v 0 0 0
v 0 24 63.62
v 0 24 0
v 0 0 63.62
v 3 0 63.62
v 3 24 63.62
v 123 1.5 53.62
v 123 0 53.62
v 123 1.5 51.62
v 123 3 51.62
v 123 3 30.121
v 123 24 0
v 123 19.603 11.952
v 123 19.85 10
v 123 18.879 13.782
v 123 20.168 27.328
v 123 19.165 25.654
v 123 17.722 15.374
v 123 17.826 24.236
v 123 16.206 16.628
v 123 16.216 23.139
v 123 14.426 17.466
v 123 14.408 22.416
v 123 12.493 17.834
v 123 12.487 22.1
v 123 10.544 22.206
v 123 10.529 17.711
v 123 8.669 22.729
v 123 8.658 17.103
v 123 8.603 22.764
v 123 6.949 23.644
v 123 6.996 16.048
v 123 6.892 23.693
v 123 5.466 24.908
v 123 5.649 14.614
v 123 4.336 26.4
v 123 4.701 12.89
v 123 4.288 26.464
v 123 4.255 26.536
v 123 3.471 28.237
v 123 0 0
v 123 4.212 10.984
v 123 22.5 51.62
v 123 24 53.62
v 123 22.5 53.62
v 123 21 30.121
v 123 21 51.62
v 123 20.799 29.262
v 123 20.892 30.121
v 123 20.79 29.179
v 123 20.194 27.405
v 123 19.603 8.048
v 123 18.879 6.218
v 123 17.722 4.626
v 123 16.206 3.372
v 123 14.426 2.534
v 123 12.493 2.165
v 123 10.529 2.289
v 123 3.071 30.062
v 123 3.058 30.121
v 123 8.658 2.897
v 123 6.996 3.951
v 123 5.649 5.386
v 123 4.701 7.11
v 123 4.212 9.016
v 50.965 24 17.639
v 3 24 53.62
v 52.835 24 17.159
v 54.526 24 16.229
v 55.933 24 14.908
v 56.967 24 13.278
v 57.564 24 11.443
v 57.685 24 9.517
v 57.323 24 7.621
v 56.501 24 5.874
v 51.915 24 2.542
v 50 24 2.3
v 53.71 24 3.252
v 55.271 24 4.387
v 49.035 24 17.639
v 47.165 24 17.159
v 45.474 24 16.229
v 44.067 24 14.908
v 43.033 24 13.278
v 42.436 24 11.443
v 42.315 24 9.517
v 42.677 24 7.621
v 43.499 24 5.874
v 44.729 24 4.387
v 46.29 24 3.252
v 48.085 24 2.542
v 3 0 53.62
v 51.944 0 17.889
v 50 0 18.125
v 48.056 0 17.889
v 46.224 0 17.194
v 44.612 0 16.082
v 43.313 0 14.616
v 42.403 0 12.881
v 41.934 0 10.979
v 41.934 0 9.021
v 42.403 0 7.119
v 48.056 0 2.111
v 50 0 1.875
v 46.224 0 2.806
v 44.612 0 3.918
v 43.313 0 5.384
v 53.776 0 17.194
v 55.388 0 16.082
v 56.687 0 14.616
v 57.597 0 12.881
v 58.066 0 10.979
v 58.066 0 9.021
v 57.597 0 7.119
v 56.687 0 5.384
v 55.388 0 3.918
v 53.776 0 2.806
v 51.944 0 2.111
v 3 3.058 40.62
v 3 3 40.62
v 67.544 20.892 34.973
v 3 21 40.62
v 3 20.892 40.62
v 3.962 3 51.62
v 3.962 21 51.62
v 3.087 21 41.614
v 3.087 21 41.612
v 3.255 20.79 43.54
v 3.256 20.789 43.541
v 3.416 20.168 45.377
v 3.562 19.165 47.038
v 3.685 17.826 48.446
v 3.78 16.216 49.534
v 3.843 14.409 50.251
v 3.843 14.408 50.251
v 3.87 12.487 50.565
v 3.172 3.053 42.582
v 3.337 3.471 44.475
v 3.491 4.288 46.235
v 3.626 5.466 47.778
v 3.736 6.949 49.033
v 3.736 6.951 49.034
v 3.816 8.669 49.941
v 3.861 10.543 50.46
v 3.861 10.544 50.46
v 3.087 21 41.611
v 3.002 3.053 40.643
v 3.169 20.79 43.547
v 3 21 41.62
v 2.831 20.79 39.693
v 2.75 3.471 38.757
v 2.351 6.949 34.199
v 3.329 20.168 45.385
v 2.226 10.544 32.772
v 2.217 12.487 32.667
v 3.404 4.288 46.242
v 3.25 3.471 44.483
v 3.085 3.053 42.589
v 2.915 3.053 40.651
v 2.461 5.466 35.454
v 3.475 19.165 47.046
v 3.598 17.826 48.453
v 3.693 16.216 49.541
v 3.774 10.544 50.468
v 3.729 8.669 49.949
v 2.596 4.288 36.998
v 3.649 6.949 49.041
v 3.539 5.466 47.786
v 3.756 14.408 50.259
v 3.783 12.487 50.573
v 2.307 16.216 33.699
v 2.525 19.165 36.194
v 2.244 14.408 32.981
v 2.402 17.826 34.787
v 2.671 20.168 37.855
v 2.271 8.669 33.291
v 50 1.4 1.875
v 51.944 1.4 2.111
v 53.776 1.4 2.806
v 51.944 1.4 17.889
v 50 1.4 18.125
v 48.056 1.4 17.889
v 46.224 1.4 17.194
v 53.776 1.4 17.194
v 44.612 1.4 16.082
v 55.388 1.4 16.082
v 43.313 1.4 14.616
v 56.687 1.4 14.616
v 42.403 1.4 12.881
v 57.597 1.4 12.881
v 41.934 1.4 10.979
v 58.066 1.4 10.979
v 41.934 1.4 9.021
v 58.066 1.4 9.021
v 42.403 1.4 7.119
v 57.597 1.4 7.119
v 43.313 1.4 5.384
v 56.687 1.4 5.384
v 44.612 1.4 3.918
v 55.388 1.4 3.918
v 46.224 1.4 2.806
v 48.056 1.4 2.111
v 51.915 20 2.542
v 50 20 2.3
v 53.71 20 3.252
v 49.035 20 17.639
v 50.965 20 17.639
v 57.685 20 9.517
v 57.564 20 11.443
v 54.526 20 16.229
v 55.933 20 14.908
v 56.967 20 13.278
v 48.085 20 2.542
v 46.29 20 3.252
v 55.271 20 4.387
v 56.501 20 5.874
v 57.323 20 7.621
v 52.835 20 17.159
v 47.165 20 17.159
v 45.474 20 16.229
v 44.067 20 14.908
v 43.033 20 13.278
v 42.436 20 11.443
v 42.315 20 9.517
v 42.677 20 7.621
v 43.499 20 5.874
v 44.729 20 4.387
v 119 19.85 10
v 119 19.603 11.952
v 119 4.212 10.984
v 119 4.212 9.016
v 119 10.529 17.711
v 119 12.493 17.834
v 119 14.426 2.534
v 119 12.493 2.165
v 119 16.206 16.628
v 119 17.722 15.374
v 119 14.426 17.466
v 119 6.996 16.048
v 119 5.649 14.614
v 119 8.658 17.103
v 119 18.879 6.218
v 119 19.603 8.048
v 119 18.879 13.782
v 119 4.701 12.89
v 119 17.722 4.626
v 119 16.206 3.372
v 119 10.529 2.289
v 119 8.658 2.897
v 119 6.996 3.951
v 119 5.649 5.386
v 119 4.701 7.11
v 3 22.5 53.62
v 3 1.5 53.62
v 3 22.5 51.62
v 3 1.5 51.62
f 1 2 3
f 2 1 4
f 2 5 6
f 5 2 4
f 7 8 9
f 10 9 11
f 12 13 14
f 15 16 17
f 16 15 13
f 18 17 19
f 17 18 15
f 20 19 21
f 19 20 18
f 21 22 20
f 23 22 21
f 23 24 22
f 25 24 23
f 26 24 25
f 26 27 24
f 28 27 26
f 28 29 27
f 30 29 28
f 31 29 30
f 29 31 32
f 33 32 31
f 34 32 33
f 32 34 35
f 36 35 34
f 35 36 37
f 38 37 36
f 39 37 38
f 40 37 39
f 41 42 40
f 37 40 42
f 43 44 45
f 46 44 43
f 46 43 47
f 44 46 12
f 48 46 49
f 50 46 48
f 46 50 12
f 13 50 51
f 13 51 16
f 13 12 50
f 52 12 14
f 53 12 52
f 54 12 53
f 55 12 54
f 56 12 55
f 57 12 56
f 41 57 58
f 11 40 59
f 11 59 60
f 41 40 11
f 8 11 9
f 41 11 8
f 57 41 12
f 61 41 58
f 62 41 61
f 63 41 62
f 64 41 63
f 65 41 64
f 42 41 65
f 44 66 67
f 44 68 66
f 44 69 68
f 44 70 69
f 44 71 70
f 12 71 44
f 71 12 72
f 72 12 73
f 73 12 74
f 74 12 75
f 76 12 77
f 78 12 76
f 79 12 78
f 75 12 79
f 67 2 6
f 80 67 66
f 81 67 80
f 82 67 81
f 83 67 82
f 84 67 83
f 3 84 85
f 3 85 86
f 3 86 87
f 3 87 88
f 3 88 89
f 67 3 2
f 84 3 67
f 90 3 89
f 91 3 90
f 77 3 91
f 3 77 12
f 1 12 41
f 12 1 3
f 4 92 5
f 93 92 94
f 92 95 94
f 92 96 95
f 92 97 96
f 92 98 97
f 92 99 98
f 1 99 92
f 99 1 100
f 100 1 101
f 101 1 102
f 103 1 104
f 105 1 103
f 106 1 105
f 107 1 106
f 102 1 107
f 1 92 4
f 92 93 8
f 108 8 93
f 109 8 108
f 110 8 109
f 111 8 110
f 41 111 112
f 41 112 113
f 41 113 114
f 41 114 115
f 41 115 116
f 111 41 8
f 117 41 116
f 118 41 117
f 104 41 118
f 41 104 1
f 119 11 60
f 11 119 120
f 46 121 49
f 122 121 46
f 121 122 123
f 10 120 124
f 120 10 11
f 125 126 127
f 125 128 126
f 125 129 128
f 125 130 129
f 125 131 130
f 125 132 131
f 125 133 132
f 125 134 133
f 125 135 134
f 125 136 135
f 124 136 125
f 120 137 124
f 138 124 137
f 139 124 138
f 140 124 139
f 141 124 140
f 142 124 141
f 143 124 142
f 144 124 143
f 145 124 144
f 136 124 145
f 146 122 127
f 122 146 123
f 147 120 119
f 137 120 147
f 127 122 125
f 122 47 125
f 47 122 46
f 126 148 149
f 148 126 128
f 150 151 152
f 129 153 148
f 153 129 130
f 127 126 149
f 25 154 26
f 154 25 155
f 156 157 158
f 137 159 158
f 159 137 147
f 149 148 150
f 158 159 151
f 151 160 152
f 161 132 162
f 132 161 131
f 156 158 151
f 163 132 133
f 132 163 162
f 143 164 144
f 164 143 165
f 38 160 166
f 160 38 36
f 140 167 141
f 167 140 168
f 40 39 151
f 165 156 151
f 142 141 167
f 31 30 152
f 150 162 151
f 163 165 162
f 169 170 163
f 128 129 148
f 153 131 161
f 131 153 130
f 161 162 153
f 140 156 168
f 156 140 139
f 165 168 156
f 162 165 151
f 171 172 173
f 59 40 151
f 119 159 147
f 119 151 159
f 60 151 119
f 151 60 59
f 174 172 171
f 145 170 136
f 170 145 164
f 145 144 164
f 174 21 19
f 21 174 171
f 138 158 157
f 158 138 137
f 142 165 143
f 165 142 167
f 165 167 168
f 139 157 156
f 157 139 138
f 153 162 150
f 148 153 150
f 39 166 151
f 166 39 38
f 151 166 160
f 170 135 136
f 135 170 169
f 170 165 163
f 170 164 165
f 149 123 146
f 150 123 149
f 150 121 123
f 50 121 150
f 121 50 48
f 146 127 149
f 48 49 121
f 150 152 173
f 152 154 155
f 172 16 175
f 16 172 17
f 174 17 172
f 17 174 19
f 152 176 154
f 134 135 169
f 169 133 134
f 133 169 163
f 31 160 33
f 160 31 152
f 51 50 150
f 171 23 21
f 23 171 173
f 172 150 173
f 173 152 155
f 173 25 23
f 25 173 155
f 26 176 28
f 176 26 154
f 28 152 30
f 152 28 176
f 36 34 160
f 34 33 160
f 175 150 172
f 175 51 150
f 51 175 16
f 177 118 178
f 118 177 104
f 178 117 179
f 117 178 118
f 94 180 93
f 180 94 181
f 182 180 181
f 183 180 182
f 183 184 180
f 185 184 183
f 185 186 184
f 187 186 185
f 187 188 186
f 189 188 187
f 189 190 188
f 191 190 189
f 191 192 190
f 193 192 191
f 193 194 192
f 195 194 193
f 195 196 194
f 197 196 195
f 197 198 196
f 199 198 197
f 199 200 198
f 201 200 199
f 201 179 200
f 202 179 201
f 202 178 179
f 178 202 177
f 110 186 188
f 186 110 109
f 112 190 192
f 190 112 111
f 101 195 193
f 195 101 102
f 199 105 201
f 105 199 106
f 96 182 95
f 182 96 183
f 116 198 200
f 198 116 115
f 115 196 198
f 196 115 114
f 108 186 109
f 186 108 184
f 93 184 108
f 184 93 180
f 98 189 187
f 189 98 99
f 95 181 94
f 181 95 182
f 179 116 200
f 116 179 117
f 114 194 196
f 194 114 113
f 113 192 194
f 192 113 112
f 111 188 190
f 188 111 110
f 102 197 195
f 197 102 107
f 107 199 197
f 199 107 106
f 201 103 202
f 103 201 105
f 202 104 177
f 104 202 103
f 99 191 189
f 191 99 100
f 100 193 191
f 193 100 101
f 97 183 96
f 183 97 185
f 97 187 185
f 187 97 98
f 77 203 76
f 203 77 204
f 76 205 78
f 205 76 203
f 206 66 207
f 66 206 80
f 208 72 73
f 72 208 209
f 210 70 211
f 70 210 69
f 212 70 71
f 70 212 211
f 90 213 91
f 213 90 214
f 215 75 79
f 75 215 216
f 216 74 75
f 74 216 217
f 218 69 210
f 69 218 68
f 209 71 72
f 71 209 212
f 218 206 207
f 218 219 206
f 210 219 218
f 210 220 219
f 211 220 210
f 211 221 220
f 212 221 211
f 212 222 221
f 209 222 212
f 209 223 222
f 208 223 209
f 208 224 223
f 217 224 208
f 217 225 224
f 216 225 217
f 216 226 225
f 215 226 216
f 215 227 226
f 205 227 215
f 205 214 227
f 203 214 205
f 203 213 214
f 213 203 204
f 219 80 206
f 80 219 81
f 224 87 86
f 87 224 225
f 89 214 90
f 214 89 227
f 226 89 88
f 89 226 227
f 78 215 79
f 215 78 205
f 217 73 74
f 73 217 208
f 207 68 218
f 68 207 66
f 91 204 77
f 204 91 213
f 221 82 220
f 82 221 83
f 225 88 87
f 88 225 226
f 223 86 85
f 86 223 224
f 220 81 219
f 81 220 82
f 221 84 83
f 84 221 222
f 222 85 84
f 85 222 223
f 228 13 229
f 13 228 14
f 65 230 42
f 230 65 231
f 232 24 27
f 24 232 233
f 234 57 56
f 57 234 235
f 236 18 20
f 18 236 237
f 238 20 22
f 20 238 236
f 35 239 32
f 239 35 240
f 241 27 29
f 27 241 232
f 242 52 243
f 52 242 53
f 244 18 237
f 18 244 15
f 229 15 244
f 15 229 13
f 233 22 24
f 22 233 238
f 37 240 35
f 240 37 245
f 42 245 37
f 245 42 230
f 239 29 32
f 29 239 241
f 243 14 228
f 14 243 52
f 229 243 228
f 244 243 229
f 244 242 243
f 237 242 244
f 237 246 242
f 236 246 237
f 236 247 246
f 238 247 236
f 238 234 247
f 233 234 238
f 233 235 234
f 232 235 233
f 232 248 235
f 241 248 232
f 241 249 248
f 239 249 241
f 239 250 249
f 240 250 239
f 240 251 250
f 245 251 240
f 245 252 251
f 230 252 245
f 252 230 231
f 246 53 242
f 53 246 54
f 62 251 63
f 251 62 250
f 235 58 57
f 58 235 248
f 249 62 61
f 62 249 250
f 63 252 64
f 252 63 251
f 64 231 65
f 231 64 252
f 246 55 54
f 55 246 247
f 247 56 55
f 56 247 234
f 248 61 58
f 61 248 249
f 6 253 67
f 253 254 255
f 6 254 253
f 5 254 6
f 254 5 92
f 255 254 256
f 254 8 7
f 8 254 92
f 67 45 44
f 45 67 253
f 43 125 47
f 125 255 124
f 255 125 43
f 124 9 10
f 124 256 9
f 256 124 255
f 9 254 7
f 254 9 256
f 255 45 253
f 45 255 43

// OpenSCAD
// file: PotionExplosionMarbleHiddenTrackCore.scad
//TODO: Get correct length
length = 123;
diameter = 18;
wallThickness = 3;
angle = 5;
floorThickness = 10;
heightStepDown = .2;
offset = diameter + 5;
height = 40.42 + heightStepDown + offset;
washerDiameter = 16.25;
washerHeight = 1.4;
washerHeightOffset = 1;
magnetHeightOffset = 1;
magnetBaseInnerDiameter = 15.4;
frontMagnetBaseInnerDiameter = magnetBaseInnerDiameter + .3;
magnetHeight = 4.0;
width = diameter + wallThickness * 2;
centerOfConnectorX = 50;
centerOfConnectorY = 10;
centerOfBackConnectorX = width/2;
echo(centerOfBackConnectorX);
lidHeight = 2;
backstopHeight = 10;

module Track(useLeftConnector, useRightConnector) {
    difference(){

        cube([length, width, height]);
        
        translate([wallThickness, wallThickness, height - offset])
            rotate([0, angle, 0])
                cube([length + wallThickness, width - wallThickness * 2, height]);
        
        translate([wallThickness, diameter/2 + wallThickness, height - offset + 1 ])
            rotate([90 + angle, 0, 90])
                cylinder(length + 3, d=diameter);
        if(useLeftConnector)
            translate([centerOfConnectorX, washerHeight, centerOfConnectorY])
                rotate([90, 90, 0])
                    cylinder(washerHeight, d=washerDiameter);
        if(useRightConnector)
        translate([centerOfConnectorX, width, centerOfConnectorY])
            rotate([90, 90, 0])
                cylinder(magnetHeight, d=magnetBaseInnerDiameter);
        
    //    translate([0, centerOfBackConnectorX, centerOfConnectorY])
    //        rotate([90, 0, 90])
    //            cylinder(magnetHeight, d=magnetBaseInnerDiameter);
        
        translate([length - magnetHeight, centerOfBackConnectorX, centerOfConnectorY])
            rotate([90, 0, 90])
                cylinder(magnetHeight, d=frontMagnetBaseInnerDiameter);


        translate([wallThickness,wallThickness/2,height - (backstopHeight + lidHeight)])
            cube([length,width - wallThickness,lidHeight]);
    }

    //translate([length, 0, 0])
    //    import("C:/Code/Git/3DPrint/PotionExplosionMarbleTrack.stl");

}
// main file
include<PotionExplosionMarbleHiddenTrackCore.scad>

difference(){

    Track(true, true);
    translate([wallThickness,0,height - backstopHeight])
        cube([length,width,backstopHeight]);

}
